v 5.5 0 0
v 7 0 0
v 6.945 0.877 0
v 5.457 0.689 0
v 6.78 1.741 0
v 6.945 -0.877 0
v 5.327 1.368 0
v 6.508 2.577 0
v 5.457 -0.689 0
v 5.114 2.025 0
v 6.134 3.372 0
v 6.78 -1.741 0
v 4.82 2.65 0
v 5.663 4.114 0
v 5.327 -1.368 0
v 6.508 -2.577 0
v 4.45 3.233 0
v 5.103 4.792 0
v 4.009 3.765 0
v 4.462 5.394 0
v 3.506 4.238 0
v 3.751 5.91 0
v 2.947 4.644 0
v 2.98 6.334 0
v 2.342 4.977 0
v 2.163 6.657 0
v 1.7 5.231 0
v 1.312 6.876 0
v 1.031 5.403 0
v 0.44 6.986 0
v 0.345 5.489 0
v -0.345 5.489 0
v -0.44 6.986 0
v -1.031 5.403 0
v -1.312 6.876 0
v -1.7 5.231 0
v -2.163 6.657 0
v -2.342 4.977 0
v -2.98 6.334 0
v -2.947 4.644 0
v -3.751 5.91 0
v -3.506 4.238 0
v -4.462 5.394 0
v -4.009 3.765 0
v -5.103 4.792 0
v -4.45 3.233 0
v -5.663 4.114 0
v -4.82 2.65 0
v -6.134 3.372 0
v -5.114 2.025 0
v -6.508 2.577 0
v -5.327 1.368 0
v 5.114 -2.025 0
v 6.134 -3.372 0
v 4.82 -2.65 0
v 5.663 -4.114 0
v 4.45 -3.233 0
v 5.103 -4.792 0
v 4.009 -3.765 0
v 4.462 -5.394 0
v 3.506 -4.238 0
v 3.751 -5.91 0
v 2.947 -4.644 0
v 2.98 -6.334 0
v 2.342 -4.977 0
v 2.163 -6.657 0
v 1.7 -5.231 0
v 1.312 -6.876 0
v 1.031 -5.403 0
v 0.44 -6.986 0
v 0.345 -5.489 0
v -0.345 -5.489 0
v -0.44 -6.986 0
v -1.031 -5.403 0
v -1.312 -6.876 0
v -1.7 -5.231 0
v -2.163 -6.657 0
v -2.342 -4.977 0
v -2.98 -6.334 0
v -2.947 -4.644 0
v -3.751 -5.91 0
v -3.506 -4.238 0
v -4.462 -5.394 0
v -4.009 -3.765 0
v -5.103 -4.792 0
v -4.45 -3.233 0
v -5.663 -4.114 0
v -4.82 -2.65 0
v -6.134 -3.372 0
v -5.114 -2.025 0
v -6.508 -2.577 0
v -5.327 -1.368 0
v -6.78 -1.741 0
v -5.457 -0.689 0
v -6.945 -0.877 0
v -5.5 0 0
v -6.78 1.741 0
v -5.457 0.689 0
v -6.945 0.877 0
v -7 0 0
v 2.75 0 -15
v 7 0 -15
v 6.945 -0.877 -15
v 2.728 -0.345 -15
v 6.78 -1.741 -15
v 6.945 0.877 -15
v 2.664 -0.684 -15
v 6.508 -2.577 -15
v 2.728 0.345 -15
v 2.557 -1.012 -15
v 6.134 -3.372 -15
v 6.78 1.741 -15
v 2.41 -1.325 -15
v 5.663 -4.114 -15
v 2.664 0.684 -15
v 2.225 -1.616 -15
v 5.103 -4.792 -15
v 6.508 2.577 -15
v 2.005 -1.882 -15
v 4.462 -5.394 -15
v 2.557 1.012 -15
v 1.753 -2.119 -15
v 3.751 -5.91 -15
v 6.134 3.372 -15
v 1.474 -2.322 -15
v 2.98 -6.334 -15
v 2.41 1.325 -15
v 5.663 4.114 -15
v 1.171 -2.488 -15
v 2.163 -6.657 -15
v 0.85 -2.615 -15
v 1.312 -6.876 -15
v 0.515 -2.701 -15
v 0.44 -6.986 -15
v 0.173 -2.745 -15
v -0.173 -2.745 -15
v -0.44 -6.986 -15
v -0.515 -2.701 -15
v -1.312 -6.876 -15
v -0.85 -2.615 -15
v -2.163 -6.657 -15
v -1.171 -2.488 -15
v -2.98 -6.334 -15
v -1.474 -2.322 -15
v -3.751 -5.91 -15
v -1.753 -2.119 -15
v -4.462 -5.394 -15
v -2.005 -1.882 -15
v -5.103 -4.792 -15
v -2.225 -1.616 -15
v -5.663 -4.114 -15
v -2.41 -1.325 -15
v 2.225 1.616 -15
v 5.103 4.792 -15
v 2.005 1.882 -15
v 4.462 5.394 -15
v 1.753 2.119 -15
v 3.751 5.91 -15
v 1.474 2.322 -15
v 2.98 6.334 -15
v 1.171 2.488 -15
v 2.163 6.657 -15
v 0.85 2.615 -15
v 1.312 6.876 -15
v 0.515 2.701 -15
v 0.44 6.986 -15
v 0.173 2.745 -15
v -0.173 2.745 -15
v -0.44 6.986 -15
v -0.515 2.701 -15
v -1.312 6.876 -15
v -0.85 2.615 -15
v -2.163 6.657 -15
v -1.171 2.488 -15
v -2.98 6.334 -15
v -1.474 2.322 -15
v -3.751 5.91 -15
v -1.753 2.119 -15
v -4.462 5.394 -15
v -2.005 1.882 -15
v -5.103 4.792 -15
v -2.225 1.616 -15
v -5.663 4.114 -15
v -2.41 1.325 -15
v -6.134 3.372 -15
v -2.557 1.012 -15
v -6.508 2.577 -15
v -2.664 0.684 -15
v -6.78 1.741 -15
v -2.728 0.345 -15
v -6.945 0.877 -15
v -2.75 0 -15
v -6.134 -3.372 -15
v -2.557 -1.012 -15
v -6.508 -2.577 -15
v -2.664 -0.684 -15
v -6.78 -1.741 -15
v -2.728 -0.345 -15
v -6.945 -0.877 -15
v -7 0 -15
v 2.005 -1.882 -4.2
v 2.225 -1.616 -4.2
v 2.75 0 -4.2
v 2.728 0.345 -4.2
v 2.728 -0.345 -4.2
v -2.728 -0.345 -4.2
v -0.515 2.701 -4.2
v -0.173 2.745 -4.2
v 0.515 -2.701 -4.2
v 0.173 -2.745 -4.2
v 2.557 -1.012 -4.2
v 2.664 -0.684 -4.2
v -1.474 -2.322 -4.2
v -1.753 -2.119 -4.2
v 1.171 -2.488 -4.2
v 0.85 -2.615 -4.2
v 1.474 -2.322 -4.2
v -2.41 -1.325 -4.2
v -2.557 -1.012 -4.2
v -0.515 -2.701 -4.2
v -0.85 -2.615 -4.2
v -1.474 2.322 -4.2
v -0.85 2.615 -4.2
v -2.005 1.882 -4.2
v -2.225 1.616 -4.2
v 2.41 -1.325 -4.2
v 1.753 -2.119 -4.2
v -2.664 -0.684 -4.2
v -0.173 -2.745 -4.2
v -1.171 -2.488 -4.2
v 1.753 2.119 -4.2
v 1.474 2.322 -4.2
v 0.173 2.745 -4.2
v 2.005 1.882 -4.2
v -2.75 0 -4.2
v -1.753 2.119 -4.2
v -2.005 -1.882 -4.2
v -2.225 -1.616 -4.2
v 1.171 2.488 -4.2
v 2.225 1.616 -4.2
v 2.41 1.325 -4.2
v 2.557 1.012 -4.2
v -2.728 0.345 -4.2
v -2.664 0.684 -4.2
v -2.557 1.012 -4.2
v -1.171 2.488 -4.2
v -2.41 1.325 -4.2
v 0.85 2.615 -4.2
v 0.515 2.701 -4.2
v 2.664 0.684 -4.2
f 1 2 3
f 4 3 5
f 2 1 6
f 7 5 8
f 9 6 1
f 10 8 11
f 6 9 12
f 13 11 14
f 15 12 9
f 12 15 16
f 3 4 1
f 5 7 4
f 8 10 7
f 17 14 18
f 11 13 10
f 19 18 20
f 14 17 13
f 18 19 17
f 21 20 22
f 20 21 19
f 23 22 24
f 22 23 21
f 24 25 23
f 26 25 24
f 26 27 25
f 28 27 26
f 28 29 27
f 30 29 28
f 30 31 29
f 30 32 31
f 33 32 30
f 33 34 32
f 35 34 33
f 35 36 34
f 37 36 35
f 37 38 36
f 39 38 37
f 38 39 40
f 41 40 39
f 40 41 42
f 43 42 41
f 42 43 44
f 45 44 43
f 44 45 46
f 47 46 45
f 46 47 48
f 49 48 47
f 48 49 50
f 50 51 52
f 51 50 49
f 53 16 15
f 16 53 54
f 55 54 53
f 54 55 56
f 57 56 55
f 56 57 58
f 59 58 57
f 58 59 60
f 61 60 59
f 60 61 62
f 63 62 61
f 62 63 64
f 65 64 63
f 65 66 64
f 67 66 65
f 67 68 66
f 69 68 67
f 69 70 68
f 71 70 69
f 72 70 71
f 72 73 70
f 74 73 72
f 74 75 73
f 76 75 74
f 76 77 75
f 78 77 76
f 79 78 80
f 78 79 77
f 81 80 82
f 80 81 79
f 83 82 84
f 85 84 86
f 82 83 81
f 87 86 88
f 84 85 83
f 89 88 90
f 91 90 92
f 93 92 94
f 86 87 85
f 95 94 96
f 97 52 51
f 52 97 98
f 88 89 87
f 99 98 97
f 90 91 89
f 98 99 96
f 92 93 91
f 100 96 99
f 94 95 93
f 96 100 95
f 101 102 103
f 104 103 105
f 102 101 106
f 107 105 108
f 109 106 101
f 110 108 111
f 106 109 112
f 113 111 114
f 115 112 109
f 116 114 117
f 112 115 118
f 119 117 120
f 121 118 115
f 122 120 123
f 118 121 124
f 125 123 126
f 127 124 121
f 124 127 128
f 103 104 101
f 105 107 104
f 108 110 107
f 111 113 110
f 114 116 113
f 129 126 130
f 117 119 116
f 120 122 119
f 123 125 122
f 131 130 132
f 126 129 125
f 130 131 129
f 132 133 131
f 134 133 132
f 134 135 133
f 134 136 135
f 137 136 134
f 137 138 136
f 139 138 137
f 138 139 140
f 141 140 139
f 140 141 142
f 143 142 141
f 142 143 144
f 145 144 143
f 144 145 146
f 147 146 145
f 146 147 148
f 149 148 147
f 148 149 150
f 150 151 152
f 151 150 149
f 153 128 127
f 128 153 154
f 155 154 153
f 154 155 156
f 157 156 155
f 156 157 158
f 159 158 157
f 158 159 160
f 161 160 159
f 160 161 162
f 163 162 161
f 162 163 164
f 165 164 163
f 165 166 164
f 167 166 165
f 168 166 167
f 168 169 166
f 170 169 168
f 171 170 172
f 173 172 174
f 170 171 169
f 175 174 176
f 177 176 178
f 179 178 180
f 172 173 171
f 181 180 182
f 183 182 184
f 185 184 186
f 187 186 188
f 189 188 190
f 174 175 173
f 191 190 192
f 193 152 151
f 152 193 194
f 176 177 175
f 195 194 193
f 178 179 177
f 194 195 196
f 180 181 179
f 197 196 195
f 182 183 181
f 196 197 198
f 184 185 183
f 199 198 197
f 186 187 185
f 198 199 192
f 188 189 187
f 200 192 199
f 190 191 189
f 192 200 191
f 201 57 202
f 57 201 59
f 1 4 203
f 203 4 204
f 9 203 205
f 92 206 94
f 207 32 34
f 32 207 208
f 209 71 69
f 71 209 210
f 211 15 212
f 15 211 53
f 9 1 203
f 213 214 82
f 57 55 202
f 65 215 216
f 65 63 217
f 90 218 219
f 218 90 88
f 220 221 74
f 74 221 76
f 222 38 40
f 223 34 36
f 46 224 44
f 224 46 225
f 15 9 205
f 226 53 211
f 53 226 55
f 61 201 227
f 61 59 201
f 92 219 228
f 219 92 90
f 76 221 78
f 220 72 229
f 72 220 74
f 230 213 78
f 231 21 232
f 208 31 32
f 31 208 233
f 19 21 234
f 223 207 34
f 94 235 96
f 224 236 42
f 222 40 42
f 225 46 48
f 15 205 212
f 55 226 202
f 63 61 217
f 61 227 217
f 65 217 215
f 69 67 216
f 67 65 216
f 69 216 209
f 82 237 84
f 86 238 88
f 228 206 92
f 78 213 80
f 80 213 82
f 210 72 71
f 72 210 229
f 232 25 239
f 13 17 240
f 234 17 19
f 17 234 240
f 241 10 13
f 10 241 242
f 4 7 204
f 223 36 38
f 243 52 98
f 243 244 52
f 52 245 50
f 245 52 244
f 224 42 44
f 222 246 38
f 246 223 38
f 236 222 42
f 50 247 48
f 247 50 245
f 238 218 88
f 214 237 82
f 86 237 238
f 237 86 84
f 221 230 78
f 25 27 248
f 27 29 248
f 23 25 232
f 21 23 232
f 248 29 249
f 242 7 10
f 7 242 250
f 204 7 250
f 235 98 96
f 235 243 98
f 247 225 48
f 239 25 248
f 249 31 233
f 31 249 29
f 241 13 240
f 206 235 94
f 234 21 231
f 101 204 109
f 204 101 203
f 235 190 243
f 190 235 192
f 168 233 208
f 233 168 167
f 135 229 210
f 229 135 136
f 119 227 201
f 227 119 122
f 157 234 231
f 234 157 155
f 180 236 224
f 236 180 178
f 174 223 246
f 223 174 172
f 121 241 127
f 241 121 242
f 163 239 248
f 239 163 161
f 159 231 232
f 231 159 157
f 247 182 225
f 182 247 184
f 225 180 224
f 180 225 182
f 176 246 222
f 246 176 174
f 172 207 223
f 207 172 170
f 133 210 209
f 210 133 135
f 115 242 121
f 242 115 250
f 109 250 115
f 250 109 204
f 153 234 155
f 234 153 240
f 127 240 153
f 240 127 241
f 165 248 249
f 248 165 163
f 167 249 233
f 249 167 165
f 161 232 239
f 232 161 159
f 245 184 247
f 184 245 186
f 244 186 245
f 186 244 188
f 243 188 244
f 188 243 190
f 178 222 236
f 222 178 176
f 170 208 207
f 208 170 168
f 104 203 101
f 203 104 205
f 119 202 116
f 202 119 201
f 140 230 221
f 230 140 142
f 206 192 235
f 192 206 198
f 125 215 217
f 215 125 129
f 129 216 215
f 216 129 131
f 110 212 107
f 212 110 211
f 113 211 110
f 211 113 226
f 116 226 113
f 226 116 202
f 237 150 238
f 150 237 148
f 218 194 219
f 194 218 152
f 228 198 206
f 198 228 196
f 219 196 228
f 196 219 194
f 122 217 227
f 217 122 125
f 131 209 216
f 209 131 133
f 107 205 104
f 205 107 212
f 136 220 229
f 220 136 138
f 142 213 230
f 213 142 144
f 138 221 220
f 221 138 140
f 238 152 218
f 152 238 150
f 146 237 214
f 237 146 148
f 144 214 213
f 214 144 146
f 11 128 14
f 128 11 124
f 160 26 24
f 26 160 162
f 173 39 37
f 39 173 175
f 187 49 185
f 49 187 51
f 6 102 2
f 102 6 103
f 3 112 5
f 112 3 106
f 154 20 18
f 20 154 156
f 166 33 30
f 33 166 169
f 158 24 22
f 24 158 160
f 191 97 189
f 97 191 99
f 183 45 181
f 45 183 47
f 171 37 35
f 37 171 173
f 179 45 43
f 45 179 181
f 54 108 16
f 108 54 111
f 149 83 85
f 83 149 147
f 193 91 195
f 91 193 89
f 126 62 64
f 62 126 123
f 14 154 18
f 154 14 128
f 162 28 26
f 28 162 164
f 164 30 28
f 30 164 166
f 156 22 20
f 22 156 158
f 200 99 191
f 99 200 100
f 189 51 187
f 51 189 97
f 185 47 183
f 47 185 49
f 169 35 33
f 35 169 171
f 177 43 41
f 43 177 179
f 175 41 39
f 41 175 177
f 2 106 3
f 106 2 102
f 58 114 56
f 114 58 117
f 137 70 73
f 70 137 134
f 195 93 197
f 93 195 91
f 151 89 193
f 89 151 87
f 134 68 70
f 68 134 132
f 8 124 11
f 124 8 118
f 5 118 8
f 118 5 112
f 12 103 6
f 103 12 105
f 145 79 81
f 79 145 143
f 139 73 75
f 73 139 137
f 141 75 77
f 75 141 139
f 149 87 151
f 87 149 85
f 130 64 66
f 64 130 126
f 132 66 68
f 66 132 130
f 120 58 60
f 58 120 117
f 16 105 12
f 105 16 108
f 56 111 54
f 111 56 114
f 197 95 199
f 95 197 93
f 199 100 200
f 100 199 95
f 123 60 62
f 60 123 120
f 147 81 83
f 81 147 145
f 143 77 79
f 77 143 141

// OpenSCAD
$fn = 50;


difference() {
	union() {
		translate(v = [0, 0, -15.0000000000]) {
			cylinder(h = 15, r = 7.0000000000);
		}
		cylinder(h = 0, r = 13.0000000000);
	}
	union() {
		translate(v = [0, 0, 0]) {
			rotate(a = [0, 0, 0]) {
				difference() {
					union() {
						#translate(v = [0, 0, -15.0000000000]) {
							cylinder(h = 15, r = 2.2500000000);
						}
						#translate(v = [0, 0, -4.2000000000]) {
							cylinder(h = 4.2000000000, r1 = 2.7500000000, r2 = 5.5000000000);
						}
						#translate(v = [0, 0, -15.0000000000]) {
							cylinder(h = 15, r = 2.7500000000);
						}
						#translate(v = [0, 0, -15.0000000000]) {
							cylinder(h = 15, r = 2.2500000000);
						}
					}
					union();
				}
			}
		}
	}
}
